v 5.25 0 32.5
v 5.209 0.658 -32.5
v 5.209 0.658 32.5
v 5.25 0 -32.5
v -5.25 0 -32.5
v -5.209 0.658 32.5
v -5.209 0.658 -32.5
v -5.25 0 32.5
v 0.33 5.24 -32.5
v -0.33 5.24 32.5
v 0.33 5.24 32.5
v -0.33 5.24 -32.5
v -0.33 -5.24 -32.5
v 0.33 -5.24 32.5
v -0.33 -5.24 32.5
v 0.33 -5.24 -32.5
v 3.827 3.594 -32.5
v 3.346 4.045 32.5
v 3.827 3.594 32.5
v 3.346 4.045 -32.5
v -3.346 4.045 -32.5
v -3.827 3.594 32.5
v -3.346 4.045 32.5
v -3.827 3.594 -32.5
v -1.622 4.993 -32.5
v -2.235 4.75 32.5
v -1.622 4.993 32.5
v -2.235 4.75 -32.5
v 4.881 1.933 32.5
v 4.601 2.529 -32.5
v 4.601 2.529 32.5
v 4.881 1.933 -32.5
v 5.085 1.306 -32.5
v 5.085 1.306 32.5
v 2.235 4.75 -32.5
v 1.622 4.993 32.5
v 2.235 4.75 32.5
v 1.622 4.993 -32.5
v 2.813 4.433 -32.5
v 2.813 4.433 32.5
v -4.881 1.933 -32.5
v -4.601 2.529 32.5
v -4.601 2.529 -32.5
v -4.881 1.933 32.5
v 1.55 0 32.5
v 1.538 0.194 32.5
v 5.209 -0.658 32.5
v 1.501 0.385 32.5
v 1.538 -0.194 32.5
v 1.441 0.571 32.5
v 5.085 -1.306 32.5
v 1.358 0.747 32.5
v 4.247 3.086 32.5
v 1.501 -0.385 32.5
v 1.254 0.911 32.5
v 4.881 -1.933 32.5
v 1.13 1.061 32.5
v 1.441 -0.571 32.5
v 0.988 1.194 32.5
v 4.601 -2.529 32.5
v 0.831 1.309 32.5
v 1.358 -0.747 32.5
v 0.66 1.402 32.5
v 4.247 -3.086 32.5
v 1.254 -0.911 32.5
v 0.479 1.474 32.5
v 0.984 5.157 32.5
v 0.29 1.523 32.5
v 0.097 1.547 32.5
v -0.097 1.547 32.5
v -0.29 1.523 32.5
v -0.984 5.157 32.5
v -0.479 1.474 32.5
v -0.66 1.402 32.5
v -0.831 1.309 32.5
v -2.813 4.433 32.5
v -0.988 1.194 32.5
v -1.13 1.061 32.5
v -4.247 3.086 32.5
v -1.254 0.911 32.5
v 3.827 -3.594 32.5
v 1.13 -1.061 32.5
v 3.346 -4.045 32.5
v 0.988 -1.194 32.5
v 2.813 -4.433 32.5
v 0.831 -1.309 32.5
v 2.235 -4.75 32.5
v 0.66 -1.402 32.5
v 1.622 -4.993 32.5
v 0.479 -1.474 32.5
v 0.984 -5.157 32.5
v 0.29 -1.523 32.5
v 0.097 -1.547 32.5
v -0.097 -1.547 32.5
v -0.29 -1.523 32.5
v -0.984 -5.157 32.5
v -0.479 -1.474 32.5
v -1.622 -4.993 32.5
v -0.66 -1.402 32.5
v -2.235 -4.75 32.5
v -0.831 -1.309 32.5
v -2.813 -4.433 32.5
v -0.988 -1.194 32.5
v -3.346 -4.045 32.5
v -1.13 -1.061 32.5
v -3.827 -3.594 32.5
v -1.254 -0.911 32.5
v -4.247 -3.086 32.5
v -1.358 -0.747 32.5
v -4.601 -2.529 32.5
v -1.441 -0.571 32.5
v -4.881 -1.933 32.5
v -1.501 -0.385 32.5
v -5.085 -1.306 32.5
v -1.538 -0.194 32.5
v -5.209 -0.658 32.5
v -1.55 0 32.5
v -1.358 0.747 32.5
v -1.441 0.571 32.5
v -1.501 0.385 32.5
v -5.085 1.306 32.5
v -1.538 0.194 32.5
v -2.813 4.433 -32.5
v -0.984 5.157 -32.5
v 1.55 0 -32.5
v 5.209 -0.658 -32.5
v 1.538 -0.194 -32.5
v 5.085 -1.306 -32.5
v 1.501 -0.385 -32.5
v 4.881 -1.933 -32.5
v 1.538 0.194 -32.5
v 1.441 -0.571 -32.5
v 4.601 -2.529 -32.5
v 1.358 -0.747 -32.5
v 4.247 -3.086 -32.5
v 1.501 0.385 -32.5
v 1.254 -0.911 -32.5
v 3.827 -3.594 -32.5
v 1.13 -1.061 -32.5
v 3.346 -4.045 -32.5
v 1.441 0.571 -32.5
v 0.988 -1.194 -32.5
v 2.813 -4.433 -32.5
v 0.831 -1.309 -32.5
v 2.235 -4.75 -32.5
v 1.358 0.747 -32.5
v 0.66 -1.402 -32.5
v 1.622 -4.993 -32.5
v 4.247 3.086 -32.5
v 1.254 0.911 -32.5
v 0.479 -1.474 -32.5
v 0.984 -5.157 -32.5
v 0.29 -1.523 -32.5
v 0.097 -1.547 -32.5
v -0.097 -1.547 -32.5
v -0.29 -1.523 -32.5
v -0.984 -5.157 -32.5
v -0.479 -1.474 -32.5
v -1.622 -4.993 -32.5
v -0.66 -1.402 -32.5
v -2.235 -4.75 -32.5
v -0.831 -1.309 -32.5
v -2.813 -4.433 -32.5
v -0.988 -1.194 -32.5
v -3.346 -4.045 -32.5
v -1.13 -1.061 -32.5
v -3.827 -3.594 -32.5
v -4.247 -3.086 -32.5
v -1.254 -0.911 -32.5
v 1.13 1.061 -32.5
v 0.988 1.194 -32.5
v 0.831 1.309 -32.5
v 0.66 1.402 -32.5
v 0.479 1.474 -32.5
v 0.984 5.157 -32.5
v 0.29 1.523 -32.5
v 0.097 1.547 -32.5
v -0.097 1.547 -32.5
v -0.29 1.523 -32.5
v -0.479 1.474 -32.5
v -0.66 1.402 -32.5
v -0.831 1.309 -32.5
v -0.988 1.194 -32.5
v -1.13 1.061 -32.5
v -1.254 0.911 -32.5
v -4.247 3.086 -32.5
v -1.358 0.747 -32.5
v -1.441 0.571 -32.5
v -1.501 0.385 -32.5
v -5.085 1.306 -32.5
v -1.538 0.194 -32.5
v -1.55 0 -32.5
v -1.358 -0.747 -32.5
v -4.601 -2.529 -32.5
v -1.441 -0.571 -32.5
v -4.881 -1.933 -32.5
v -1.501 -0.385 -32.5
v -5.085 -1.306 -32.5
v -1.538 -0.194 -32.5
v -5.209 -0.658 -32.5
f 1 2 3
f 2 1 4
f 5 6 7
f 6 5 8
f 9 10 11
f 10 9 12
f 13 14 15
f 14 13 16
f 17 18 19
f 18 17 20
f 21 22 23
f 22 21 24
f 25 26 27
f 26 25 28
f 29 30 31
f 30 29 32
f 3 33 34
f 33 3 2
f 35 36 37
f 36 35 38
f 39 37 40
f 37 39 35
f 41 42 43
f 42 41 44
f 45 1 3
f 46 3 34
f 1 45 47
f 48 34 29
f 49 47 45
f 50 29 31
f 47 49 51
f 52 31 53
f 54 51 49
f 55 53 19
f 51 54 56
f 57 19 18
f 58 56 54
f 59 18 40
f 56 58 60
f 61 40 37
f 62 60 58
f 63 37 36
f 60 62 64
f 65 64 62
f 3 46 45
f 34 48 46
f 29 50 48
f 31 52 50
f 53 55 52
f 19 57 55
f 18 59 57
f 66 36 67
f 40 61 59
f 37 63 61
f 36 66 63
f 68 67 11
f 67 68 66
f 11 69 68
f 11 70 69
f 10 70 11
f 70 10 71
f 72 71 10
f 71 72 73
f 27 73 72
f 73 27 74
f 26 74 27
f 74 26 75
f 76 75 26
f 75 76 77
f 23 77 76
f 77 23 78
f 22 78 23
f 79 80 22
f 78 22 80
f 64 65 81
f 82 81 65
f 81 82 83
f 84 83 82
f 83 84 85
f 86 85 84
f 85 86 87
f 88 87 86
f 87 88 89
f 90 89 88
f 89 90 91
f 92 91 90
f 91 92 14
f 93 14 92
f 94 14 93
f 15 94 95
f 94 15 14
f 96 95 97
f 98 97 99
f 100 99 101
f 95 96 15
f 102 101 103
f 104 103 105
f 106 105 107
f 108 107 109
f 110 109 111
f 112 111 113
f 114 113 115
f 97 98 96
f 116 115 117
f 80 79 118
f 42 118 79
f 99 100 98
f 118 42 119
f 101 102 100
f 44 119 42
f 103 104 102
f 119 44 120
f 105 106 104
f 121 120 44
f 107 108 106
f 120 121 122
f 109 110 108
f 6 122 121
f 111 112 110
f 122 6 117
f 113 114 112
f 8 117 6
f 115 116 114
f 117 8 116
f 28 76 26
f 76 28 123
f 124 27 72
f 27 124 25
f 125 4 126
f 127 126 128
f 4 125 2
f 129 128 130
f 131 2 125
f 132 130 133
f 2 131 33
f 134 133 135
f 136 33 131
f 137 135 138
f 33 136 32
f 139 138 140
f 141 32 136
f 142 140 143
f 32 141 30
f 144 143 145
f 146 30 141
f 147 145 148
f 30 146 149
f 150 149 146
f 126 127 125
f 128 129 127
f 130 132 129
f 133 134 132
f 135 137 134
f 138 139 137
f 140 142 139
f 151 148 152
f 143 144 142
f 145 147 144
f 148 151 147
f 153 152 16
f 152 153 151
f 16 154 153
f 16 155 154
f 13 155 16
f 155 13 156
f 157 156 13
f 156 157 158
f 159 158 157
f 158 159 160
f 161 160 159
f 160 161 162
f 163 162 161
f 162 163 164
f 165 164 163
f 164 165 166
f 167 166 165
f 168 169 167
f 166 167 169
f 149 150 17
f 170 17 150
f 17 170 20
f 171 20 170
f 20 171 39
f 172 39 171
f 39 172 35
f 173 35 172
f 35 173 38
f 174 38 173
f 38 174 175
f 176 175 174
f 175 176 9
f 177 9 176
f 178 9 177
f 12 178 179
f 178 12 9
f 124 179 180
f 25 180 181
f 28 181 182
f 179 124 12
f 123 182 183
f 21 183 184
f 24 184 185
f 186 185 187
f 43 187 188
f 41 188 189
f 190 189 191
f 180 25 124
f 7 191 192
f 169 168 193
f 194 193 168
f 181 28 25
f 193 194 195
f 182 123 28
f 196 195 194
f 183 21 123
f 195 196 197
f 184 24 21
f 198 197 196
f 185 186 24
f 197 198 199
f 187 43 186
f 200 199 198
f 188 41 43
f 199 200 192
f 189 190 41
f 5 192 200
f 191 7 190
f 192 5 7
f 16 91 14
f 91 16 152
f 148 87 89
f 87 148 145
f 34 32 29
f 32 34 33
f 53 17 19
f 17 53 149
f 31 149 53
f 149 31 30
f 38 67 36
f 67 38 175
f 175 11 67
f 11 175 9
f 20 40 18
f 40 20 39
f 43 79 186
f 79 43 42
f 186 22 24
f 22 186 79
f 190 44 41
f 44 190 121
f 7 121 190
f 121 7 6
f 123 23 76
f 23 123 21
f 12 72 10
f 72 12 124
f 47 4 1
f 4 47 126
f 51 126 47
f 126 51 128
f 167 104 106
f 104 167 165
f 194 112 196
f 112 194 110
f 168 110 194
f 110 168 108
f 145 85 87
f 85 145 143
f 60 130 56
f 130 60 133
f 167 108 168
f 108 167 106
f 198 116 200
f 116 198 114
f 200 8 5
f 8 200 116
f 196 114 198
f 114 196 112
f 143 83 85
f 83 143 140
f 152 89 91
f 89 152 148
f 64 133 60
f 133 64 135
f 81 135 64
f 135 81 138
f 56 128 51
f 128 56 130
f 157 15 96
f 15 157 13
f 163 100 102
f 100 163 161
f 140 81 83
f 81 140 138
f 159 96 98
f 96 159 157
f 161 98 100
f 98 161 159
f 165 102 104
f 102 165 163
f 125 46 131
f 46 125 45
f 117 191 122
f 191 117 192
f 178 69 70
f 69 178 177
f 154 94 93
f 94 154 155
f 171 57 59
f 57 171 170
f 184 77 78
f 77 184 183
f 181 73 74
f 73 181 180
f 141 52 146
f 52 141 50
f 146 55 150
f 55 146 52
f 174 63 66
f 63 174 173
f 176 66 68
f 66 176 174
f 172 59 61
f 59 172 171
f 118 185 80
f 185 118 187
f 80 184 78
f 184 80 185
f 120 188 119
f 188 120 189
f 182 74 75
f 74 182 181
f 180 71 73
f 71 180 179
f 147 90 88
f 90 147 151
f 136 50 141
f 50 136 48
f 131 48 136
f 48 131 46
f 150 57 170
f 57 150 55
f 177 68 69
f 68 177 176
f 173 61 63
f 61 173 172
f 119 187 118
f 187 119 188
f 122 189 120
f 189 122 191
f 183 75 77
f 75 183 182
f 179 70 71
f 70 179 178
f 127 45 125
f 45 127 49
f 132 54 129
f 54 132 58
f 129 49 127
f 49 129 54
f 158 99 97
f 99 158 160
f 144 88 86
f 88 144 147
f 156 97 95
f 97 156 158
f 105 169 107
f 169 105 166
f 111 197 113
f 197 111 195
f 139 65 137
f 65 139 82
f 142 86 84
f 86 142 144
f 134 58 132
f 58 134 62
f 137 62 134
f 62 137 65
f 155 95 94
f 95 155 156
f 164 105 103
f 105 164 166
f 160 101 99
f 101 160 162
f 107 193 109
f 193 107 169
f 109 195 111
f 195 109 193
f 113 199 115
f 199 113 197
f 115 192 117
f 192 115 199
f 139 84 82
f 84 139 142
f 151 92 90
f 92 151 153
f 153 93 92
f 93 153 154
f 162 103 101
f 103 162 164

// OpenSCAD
$fn = 50;


difference() {
	union() {
		translate(v = [0, 0, -32.5000000000]) {
			cylinder(h = 65, r = 5.2500000000);
		}
	}
	union() {
		translate(v = [0, 0, -100.0000000000]) {
			cylinder(h = 200, r = 1.5500000000);
		}
	}
}
